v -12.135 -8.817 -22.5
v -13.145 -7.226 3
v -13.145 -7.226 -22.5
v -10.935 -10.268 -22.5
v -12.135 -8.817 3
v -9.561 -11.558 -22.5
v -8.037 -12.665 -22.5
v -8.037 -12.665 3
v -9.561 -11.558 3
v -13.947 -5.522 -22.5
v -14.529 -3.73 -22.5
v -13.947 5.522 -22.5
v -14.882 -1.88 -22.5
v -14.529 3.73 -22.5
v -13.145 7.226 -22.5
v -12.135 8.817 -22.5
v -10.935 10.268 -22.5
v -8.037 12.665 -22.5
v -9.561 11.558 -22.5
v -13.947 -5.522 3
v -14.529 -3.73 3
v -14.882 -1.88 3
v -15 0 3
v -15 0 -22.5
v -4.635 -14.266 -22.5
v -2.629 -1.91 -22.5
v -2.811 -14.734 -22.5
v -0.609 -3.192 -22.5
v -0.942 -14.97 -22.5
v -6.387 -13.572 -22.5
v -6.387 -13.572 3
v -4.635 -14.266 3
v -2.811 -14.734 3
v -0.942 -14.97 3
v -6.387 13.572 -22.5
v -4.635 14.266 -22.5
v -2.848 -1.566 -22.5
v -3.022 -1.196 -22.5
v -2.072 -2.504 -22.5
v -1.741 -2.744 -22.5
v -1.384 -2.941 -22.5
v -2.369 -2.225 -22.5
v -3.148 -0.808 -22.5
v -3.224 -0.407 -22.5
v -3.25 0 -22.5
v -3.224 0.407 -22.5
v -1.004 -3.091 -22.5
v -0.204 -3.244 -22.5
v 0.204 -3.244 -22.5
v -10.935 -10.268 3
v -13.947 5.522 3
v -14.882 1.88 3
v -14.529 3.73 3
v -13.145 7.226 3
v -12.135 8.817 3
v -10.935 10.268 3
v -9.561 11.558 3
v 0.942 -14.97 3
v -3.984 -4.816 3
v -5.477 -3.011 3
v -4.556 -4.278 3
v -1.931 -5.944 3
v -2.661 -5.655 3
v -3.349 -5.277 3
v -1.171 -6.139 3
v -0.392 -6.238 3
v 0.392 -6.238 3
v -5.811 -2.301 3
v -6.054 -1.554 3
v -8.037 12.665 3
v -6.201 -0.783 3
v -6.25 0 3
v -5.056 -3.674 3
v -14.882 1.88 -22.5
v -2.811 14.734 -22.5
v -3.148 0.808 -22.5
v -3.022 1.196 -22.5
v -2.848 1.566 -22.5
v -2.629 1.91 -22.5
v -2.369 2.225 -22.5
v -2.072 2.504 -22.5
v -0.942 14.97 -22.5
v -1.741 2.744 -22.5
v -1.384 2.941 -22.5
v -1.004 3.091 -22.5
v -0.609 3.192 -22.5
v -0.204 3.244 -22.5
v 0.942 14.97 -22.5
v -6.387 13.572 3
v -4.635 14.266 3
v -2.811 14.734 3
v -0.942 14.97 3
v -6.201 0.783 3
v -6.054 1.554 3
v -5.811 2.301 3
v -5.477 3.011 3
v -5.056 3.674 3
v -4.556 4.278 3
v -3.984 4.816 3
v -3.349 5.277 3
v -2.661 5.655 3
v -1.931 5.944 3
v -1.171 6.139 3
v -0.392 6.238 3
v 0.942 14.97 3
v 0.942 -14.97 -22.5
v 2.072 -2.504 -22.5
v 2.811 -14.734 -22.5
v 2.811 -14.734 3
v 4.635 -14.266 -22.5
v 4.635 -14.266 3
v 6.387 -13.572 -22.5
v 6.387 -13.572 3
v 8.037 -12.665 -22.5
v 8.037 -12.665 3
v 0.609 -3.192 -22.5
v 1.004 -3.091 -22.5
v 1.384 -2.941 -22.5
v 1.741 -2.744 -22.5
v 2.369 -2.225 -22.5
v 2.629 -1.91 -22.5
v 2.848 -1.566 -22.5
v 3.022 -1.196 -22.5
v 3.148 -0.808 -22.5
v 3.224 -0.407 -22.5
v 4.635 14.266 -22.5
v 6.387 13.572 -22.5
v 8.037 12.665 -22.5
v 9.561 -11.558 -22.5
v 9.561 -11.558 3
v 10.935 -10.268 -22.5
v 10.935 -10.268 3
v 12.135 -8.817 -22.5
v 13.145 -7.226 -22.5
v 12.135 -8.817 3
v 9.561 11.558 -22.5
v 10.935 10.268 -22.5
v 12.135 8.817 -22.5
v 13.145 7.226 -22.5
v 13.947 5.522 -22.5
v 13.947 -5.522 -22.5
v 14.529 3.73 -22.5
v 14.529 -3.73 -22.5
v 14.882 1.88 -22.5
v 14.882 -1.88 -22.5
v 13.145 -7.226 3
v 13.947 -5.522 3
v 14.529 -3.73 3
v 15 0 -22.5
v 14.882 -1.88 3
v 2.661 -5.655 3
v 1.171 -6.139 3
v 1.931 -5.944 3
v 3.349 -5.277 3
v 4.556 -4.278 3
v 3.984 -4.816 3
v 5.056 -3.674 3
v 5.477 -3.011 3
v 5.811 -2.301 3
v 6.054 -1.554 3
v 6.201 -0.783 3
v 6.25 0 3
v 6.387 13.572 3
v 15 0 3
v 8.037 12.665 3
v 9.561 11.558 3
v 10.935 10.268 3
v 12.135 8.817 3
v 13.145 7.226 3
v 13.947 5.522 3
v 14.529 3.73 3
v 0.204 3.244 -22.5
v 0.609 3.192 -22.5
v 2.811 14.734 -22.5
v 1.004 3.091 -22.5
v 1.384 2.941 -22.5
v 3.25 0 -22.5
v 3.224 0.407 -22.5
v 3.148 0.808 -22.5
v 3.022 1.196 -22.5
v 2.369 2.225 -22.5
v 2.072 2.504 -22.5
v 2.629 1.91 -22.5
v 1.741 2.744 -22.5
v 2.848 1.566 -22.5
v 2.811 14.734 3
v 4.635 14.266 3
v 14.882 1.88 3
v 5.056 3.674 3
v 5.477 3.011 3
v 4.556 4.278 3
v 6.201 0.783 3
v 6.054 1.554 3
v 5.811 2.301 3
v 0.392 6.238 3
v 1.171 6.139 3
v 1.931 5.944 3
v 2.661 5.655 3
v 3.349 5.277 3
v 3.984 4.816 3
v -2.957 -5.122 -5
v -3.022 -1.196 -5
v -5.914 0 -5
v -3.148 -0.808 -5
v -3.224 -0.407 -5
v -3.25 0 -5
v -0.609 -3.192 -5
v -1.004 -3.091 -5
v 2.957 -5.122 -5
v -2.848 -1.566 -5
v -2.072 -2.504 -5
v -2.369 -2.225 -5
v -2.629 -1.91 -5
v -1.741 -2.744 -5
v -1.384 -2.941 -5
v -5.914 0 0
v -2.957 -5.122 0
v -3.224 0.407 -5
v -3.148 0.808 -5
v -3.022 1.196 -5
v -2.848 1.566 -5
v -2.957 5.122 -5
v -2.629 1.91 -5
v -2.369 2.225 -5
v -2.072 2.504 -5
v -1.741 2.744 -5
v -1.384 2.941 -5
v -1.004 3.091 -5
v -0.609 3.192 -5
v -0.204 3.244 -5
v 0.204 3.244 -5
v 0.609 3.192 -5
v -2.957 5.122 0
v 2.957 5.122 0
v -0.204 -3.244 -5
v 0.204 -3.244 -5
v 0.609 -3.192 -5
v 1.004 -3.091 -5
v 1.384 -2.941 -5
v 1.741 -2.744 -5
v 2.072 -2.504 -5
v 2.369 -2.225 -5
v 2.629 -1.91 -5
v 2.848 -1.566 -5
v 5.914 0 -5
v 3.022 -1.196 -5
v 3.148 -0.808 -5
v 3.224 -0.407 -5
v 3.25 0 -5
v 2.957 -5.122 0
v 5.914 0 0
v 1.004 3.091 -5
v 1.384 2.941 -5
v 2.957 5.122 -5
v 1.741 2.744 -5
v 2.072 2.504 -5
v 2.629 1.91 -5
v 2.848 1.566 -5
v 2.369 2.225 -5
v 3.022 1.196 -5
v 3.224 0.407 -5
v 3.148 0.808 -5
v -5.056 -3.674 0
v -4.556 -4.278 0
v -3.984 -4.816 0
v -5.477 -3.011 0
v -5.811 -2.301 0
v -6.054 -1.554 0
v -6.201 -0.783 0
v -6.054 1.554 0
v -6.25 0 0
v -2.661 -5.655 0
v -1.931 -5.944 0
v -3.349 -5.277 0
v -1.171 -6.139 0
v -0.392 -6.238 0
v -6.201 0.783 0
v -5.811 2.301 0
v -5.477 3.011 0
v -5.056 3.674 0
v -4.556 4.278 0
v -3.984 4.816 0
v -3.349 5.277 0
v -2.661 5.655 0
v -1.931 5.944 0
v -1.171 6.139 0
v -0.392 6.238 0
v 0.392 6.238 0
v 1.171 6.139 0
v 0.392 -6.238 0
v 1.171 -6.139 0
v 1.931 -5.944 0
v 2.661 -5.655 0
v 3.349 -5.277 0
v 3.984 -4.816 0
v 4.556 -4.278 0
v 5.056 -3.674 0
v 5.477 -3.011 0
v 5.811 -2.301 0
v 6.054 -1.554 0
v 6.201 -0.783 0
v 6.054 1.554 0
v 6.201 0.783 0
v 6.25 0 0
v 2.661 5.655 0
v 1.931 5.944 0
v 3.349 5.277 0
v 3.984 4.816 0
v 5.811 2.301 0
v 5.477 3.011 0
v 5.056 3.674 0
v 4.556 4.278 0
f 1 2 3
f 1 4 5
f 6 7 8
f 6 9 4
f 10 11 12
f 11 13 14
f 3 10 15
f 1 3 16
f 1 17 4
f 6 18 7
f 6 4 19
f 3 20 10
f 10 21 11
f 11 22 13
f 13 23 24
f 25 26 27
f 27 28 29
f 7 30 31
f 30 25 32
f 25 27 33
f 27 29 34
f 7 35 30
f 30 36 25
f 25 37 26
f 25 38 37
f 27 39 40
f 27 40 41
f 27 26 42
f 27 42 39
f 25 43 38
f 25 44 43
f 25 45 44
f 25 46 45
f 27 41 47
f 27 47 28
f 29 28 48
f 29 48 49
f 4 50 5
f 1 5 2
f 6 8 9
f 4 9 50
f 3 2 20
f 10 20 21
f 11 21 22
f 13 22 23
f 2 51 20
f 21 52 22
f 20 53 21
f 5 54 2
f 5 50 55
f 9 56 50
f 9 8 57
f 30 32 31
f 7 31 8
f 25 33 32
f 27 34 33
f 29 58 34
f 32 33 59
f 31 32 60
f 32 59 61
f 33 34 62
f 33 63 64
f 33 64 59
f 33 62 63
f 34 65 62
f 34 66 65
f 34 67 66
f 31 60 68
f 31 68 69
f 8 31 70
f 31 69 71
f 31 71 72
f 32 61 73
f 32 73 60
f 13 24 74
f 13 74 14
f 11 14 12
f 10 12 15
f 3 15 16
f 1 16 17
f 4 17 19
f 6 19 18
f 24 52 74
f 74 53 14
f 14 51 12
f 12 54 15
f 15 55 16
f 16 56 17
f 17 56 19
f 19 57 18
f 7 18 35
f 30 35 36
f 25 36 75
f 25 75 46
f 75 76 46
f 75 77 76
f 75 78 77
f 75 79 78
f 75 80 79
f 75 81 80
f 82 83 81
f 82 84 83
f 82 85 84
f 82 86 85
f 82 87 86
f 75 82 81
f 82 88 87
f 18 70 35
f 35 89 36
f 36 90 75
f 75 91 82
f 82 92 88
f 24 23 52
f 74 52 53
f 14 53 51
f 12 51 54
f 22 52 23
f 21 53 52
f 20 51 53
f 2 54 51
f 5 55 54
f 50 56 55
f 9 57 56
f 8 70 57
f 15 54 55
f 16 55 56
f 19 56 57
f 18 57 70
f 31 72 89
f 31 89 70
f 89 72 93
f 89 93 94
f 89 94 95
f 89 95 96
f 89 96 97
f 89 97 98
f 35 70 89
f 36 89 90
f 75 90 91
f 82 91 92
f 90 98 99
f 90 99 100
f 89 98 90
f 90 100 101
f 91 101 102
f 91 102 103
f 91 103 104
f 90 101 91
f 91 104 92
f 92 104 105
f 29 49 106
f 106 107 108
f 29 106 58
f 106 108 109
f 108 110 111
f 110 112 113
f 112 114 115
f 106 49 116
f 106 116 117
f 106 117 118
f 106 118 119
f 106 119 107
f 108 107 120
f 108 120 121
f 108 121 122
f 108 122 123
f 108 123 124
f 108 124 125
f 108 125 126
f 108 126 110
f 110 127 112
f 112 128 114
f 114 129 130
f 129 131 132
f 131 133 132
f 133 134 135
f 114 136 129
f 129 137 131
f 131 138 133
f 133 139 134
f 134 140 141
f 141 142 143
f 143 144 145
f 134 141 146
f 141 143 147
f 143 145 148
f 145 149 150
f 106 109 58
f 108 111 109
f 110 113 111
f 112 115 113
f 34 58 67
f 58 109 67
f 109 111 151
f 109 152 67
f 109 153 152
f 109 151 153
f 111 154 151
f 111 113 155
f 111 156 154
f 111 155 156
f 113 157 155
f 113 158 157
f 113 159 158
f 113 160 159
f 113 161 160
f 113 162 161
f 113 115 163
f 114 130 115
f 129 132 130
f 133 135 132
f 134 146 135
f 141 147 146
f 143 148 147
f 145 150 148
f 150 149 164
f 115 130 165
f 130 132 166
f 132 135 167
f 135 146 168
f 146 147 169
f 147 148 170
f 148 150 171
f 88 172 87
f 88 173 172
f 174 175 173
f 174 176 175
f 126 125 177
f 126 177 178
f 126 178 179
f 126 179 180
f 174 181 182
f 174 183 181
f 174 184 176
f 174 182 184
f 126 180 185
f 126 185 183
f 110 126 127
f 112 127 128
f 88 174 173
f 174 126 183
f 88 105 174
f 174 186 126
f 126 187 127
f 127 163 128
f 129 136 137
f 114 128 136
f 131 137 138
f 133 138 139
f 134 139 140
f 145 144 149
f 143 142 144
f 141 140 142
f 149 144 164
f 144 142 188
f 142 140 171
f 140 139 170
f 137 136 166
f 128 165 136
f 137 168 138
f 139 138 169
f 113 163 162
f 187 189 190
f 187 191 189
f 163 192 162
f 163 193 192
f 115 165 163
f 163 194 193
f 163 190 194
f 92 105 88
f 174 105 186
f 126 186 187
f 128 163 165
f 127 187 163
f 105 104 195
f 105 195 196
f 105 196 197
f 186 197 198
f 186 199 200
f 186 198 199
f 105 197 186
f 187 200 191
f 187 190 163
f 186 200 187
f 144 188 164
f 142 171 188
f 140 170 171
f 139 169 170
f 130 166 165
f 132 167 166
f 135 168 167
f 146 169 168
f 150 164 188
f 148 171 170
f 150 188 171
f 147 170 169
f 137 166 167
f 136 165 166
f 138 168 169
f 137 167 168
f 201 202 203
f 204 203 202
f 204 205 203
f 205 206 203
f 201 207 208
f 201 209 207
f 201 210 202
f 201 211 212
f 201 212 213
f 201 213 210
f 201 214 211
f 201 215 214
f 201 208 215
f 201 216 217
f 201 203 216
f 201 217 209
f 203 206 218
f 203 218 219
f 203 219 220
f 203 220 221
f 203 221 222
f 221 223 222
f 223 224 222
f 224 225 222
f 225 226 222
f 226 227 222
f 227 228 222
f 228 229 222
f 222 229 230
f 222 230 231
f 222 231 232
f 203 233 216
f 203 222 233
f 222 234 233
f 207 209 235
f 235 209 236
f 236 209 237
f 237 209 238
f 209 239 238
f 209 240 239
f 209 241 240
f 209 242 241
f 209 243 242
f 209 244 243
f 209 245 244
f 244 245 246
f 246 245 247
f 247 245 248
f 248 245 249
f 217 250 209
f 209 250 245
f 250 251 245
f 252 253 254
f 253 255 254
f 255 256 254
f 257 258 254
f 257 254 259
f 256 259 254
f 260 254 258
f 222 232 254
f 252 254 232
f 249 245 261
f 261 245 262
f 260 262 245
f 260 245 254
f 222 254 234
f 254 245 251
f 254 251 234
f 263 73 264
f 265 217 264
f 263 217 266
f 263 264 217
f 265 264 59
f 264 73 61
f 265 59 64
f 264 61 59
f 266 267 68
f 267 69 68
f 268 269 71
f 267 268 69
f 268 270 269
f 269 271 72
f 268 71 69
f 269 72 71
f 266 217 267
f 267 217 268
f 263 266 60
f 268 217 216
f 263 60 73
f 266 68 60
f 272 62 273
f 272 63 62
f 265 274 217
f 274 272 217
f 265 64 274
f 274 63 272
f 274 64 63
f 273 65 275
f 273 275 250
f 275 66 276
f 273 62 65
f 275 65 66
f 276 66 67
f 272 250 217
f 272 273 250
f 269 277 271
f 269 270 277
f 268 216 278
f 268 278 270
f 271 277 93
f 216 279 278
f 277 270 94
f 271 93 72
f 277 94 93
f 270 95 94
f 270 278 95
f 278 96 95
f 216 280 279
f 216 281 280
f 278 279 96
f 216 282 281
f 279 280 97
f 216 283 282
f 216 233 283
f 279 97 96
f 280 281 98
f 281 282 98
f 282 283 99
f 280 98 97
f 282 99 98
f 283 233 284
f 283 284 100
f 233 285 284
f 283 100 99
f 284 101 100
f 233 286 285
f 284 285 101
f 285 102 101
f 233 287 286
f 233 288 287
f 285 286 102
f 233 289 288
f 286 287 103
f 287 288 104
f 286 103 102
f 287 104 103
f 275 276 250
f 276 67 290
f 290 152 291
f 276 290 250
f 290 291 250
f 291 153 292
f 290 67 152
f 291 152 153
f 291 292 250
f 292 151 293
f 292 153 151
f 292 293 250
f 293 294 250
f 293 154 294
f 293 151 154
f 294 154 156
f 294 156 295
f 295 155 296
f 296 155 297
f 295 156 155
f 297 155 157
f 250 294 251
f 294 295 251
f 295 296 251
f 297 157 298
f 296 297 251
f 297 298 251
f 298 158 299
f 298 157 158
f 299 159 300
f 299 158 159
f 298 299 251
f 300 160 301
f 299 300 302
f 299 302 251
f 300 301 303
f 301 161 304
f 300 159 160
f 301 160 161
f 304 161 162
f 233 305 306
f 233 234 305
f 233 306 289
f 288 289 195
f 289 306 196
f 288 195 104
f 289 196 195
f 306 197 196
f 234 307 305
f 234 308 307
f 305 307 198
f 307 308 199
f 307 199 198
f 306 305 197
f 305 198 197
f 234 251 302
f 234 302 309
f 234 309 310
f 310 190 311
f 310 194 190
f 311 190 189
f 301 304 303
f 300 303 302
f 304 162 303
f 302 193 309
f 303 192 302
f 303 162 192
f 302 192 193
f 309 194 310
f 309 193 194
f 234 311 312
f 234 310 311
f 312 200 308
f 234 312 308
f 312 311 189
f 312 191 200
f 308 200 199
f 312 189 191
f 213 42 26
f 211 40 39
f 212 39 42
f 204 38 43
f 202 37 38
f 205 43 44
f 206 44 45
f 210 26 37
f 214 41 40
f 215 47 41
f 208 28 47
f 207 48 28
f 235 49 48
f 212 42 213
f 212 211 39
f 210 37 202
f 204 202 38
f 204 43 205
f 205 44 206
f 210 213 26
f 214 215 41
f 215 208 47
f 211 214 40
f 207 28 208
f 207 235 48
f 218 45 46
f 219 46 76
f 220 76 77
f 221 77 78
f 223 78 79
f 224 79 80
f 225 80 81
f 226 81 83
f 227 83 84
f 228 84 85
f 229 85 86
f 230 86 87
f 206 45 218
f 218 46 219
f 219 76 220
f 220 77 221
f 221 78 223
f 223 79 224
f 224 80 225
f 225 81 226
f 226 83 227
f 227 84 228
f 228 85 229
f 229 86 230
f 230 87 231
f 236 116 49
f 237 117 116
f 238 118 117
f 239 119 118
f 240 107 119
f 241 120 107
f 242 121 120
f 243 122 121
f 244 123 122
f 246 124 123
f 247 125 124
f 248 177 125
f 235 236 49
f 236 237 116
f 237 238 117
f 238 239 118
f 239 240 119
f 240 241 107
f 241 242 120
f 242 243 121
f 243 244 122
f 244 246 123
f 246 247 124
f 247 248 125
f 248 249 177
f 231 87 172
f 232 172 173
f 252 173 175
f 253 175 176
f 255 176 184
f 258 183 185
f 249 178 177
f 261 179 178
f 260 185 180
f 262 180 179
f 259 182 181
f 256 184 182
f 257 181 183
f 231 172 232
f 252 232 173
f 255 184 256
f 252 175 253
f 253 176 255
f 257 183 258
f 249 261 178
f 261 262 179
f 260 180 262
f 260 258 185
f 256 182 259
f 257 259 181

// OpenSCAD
$fn = 50;

difference() {
	union() {
		translate(v = [0, 0, -22.5]) {
			cylinder(h = 25.5, r = 15.0);
		}
		#translate(v = [0, 0, -24.0]) {
			cylinder(h = 24, r = 2.875);
		}
	}
	union() {
		translate(v = [0, 0, 0]) {
			rotate(a = [0, 0, 0]) {
				difference() {
					union() {
						translate(v = [0, 0, -5]) {
							linear_extrude(height = 5) {
								polygon(points = [[5.914249999999999, 0.0], [2.957125, 5.1218907443321156], [-2.9571249999999982, 5.1218907443321156], [-5.914249999999999, 7.242867331857232e-16], [-2.9571250000000022, -5.121890744332115], [2.9571249999999956, -5.121890744332118]]);
							}
						}
					}
					union();
				}
			}
		}
		#cylinder(h = 3, r = 6.25);
		#translate(v = [0, 0, -100.0]) {
			cylinder(h = 200, r = 3.25);
		}
	}
}
